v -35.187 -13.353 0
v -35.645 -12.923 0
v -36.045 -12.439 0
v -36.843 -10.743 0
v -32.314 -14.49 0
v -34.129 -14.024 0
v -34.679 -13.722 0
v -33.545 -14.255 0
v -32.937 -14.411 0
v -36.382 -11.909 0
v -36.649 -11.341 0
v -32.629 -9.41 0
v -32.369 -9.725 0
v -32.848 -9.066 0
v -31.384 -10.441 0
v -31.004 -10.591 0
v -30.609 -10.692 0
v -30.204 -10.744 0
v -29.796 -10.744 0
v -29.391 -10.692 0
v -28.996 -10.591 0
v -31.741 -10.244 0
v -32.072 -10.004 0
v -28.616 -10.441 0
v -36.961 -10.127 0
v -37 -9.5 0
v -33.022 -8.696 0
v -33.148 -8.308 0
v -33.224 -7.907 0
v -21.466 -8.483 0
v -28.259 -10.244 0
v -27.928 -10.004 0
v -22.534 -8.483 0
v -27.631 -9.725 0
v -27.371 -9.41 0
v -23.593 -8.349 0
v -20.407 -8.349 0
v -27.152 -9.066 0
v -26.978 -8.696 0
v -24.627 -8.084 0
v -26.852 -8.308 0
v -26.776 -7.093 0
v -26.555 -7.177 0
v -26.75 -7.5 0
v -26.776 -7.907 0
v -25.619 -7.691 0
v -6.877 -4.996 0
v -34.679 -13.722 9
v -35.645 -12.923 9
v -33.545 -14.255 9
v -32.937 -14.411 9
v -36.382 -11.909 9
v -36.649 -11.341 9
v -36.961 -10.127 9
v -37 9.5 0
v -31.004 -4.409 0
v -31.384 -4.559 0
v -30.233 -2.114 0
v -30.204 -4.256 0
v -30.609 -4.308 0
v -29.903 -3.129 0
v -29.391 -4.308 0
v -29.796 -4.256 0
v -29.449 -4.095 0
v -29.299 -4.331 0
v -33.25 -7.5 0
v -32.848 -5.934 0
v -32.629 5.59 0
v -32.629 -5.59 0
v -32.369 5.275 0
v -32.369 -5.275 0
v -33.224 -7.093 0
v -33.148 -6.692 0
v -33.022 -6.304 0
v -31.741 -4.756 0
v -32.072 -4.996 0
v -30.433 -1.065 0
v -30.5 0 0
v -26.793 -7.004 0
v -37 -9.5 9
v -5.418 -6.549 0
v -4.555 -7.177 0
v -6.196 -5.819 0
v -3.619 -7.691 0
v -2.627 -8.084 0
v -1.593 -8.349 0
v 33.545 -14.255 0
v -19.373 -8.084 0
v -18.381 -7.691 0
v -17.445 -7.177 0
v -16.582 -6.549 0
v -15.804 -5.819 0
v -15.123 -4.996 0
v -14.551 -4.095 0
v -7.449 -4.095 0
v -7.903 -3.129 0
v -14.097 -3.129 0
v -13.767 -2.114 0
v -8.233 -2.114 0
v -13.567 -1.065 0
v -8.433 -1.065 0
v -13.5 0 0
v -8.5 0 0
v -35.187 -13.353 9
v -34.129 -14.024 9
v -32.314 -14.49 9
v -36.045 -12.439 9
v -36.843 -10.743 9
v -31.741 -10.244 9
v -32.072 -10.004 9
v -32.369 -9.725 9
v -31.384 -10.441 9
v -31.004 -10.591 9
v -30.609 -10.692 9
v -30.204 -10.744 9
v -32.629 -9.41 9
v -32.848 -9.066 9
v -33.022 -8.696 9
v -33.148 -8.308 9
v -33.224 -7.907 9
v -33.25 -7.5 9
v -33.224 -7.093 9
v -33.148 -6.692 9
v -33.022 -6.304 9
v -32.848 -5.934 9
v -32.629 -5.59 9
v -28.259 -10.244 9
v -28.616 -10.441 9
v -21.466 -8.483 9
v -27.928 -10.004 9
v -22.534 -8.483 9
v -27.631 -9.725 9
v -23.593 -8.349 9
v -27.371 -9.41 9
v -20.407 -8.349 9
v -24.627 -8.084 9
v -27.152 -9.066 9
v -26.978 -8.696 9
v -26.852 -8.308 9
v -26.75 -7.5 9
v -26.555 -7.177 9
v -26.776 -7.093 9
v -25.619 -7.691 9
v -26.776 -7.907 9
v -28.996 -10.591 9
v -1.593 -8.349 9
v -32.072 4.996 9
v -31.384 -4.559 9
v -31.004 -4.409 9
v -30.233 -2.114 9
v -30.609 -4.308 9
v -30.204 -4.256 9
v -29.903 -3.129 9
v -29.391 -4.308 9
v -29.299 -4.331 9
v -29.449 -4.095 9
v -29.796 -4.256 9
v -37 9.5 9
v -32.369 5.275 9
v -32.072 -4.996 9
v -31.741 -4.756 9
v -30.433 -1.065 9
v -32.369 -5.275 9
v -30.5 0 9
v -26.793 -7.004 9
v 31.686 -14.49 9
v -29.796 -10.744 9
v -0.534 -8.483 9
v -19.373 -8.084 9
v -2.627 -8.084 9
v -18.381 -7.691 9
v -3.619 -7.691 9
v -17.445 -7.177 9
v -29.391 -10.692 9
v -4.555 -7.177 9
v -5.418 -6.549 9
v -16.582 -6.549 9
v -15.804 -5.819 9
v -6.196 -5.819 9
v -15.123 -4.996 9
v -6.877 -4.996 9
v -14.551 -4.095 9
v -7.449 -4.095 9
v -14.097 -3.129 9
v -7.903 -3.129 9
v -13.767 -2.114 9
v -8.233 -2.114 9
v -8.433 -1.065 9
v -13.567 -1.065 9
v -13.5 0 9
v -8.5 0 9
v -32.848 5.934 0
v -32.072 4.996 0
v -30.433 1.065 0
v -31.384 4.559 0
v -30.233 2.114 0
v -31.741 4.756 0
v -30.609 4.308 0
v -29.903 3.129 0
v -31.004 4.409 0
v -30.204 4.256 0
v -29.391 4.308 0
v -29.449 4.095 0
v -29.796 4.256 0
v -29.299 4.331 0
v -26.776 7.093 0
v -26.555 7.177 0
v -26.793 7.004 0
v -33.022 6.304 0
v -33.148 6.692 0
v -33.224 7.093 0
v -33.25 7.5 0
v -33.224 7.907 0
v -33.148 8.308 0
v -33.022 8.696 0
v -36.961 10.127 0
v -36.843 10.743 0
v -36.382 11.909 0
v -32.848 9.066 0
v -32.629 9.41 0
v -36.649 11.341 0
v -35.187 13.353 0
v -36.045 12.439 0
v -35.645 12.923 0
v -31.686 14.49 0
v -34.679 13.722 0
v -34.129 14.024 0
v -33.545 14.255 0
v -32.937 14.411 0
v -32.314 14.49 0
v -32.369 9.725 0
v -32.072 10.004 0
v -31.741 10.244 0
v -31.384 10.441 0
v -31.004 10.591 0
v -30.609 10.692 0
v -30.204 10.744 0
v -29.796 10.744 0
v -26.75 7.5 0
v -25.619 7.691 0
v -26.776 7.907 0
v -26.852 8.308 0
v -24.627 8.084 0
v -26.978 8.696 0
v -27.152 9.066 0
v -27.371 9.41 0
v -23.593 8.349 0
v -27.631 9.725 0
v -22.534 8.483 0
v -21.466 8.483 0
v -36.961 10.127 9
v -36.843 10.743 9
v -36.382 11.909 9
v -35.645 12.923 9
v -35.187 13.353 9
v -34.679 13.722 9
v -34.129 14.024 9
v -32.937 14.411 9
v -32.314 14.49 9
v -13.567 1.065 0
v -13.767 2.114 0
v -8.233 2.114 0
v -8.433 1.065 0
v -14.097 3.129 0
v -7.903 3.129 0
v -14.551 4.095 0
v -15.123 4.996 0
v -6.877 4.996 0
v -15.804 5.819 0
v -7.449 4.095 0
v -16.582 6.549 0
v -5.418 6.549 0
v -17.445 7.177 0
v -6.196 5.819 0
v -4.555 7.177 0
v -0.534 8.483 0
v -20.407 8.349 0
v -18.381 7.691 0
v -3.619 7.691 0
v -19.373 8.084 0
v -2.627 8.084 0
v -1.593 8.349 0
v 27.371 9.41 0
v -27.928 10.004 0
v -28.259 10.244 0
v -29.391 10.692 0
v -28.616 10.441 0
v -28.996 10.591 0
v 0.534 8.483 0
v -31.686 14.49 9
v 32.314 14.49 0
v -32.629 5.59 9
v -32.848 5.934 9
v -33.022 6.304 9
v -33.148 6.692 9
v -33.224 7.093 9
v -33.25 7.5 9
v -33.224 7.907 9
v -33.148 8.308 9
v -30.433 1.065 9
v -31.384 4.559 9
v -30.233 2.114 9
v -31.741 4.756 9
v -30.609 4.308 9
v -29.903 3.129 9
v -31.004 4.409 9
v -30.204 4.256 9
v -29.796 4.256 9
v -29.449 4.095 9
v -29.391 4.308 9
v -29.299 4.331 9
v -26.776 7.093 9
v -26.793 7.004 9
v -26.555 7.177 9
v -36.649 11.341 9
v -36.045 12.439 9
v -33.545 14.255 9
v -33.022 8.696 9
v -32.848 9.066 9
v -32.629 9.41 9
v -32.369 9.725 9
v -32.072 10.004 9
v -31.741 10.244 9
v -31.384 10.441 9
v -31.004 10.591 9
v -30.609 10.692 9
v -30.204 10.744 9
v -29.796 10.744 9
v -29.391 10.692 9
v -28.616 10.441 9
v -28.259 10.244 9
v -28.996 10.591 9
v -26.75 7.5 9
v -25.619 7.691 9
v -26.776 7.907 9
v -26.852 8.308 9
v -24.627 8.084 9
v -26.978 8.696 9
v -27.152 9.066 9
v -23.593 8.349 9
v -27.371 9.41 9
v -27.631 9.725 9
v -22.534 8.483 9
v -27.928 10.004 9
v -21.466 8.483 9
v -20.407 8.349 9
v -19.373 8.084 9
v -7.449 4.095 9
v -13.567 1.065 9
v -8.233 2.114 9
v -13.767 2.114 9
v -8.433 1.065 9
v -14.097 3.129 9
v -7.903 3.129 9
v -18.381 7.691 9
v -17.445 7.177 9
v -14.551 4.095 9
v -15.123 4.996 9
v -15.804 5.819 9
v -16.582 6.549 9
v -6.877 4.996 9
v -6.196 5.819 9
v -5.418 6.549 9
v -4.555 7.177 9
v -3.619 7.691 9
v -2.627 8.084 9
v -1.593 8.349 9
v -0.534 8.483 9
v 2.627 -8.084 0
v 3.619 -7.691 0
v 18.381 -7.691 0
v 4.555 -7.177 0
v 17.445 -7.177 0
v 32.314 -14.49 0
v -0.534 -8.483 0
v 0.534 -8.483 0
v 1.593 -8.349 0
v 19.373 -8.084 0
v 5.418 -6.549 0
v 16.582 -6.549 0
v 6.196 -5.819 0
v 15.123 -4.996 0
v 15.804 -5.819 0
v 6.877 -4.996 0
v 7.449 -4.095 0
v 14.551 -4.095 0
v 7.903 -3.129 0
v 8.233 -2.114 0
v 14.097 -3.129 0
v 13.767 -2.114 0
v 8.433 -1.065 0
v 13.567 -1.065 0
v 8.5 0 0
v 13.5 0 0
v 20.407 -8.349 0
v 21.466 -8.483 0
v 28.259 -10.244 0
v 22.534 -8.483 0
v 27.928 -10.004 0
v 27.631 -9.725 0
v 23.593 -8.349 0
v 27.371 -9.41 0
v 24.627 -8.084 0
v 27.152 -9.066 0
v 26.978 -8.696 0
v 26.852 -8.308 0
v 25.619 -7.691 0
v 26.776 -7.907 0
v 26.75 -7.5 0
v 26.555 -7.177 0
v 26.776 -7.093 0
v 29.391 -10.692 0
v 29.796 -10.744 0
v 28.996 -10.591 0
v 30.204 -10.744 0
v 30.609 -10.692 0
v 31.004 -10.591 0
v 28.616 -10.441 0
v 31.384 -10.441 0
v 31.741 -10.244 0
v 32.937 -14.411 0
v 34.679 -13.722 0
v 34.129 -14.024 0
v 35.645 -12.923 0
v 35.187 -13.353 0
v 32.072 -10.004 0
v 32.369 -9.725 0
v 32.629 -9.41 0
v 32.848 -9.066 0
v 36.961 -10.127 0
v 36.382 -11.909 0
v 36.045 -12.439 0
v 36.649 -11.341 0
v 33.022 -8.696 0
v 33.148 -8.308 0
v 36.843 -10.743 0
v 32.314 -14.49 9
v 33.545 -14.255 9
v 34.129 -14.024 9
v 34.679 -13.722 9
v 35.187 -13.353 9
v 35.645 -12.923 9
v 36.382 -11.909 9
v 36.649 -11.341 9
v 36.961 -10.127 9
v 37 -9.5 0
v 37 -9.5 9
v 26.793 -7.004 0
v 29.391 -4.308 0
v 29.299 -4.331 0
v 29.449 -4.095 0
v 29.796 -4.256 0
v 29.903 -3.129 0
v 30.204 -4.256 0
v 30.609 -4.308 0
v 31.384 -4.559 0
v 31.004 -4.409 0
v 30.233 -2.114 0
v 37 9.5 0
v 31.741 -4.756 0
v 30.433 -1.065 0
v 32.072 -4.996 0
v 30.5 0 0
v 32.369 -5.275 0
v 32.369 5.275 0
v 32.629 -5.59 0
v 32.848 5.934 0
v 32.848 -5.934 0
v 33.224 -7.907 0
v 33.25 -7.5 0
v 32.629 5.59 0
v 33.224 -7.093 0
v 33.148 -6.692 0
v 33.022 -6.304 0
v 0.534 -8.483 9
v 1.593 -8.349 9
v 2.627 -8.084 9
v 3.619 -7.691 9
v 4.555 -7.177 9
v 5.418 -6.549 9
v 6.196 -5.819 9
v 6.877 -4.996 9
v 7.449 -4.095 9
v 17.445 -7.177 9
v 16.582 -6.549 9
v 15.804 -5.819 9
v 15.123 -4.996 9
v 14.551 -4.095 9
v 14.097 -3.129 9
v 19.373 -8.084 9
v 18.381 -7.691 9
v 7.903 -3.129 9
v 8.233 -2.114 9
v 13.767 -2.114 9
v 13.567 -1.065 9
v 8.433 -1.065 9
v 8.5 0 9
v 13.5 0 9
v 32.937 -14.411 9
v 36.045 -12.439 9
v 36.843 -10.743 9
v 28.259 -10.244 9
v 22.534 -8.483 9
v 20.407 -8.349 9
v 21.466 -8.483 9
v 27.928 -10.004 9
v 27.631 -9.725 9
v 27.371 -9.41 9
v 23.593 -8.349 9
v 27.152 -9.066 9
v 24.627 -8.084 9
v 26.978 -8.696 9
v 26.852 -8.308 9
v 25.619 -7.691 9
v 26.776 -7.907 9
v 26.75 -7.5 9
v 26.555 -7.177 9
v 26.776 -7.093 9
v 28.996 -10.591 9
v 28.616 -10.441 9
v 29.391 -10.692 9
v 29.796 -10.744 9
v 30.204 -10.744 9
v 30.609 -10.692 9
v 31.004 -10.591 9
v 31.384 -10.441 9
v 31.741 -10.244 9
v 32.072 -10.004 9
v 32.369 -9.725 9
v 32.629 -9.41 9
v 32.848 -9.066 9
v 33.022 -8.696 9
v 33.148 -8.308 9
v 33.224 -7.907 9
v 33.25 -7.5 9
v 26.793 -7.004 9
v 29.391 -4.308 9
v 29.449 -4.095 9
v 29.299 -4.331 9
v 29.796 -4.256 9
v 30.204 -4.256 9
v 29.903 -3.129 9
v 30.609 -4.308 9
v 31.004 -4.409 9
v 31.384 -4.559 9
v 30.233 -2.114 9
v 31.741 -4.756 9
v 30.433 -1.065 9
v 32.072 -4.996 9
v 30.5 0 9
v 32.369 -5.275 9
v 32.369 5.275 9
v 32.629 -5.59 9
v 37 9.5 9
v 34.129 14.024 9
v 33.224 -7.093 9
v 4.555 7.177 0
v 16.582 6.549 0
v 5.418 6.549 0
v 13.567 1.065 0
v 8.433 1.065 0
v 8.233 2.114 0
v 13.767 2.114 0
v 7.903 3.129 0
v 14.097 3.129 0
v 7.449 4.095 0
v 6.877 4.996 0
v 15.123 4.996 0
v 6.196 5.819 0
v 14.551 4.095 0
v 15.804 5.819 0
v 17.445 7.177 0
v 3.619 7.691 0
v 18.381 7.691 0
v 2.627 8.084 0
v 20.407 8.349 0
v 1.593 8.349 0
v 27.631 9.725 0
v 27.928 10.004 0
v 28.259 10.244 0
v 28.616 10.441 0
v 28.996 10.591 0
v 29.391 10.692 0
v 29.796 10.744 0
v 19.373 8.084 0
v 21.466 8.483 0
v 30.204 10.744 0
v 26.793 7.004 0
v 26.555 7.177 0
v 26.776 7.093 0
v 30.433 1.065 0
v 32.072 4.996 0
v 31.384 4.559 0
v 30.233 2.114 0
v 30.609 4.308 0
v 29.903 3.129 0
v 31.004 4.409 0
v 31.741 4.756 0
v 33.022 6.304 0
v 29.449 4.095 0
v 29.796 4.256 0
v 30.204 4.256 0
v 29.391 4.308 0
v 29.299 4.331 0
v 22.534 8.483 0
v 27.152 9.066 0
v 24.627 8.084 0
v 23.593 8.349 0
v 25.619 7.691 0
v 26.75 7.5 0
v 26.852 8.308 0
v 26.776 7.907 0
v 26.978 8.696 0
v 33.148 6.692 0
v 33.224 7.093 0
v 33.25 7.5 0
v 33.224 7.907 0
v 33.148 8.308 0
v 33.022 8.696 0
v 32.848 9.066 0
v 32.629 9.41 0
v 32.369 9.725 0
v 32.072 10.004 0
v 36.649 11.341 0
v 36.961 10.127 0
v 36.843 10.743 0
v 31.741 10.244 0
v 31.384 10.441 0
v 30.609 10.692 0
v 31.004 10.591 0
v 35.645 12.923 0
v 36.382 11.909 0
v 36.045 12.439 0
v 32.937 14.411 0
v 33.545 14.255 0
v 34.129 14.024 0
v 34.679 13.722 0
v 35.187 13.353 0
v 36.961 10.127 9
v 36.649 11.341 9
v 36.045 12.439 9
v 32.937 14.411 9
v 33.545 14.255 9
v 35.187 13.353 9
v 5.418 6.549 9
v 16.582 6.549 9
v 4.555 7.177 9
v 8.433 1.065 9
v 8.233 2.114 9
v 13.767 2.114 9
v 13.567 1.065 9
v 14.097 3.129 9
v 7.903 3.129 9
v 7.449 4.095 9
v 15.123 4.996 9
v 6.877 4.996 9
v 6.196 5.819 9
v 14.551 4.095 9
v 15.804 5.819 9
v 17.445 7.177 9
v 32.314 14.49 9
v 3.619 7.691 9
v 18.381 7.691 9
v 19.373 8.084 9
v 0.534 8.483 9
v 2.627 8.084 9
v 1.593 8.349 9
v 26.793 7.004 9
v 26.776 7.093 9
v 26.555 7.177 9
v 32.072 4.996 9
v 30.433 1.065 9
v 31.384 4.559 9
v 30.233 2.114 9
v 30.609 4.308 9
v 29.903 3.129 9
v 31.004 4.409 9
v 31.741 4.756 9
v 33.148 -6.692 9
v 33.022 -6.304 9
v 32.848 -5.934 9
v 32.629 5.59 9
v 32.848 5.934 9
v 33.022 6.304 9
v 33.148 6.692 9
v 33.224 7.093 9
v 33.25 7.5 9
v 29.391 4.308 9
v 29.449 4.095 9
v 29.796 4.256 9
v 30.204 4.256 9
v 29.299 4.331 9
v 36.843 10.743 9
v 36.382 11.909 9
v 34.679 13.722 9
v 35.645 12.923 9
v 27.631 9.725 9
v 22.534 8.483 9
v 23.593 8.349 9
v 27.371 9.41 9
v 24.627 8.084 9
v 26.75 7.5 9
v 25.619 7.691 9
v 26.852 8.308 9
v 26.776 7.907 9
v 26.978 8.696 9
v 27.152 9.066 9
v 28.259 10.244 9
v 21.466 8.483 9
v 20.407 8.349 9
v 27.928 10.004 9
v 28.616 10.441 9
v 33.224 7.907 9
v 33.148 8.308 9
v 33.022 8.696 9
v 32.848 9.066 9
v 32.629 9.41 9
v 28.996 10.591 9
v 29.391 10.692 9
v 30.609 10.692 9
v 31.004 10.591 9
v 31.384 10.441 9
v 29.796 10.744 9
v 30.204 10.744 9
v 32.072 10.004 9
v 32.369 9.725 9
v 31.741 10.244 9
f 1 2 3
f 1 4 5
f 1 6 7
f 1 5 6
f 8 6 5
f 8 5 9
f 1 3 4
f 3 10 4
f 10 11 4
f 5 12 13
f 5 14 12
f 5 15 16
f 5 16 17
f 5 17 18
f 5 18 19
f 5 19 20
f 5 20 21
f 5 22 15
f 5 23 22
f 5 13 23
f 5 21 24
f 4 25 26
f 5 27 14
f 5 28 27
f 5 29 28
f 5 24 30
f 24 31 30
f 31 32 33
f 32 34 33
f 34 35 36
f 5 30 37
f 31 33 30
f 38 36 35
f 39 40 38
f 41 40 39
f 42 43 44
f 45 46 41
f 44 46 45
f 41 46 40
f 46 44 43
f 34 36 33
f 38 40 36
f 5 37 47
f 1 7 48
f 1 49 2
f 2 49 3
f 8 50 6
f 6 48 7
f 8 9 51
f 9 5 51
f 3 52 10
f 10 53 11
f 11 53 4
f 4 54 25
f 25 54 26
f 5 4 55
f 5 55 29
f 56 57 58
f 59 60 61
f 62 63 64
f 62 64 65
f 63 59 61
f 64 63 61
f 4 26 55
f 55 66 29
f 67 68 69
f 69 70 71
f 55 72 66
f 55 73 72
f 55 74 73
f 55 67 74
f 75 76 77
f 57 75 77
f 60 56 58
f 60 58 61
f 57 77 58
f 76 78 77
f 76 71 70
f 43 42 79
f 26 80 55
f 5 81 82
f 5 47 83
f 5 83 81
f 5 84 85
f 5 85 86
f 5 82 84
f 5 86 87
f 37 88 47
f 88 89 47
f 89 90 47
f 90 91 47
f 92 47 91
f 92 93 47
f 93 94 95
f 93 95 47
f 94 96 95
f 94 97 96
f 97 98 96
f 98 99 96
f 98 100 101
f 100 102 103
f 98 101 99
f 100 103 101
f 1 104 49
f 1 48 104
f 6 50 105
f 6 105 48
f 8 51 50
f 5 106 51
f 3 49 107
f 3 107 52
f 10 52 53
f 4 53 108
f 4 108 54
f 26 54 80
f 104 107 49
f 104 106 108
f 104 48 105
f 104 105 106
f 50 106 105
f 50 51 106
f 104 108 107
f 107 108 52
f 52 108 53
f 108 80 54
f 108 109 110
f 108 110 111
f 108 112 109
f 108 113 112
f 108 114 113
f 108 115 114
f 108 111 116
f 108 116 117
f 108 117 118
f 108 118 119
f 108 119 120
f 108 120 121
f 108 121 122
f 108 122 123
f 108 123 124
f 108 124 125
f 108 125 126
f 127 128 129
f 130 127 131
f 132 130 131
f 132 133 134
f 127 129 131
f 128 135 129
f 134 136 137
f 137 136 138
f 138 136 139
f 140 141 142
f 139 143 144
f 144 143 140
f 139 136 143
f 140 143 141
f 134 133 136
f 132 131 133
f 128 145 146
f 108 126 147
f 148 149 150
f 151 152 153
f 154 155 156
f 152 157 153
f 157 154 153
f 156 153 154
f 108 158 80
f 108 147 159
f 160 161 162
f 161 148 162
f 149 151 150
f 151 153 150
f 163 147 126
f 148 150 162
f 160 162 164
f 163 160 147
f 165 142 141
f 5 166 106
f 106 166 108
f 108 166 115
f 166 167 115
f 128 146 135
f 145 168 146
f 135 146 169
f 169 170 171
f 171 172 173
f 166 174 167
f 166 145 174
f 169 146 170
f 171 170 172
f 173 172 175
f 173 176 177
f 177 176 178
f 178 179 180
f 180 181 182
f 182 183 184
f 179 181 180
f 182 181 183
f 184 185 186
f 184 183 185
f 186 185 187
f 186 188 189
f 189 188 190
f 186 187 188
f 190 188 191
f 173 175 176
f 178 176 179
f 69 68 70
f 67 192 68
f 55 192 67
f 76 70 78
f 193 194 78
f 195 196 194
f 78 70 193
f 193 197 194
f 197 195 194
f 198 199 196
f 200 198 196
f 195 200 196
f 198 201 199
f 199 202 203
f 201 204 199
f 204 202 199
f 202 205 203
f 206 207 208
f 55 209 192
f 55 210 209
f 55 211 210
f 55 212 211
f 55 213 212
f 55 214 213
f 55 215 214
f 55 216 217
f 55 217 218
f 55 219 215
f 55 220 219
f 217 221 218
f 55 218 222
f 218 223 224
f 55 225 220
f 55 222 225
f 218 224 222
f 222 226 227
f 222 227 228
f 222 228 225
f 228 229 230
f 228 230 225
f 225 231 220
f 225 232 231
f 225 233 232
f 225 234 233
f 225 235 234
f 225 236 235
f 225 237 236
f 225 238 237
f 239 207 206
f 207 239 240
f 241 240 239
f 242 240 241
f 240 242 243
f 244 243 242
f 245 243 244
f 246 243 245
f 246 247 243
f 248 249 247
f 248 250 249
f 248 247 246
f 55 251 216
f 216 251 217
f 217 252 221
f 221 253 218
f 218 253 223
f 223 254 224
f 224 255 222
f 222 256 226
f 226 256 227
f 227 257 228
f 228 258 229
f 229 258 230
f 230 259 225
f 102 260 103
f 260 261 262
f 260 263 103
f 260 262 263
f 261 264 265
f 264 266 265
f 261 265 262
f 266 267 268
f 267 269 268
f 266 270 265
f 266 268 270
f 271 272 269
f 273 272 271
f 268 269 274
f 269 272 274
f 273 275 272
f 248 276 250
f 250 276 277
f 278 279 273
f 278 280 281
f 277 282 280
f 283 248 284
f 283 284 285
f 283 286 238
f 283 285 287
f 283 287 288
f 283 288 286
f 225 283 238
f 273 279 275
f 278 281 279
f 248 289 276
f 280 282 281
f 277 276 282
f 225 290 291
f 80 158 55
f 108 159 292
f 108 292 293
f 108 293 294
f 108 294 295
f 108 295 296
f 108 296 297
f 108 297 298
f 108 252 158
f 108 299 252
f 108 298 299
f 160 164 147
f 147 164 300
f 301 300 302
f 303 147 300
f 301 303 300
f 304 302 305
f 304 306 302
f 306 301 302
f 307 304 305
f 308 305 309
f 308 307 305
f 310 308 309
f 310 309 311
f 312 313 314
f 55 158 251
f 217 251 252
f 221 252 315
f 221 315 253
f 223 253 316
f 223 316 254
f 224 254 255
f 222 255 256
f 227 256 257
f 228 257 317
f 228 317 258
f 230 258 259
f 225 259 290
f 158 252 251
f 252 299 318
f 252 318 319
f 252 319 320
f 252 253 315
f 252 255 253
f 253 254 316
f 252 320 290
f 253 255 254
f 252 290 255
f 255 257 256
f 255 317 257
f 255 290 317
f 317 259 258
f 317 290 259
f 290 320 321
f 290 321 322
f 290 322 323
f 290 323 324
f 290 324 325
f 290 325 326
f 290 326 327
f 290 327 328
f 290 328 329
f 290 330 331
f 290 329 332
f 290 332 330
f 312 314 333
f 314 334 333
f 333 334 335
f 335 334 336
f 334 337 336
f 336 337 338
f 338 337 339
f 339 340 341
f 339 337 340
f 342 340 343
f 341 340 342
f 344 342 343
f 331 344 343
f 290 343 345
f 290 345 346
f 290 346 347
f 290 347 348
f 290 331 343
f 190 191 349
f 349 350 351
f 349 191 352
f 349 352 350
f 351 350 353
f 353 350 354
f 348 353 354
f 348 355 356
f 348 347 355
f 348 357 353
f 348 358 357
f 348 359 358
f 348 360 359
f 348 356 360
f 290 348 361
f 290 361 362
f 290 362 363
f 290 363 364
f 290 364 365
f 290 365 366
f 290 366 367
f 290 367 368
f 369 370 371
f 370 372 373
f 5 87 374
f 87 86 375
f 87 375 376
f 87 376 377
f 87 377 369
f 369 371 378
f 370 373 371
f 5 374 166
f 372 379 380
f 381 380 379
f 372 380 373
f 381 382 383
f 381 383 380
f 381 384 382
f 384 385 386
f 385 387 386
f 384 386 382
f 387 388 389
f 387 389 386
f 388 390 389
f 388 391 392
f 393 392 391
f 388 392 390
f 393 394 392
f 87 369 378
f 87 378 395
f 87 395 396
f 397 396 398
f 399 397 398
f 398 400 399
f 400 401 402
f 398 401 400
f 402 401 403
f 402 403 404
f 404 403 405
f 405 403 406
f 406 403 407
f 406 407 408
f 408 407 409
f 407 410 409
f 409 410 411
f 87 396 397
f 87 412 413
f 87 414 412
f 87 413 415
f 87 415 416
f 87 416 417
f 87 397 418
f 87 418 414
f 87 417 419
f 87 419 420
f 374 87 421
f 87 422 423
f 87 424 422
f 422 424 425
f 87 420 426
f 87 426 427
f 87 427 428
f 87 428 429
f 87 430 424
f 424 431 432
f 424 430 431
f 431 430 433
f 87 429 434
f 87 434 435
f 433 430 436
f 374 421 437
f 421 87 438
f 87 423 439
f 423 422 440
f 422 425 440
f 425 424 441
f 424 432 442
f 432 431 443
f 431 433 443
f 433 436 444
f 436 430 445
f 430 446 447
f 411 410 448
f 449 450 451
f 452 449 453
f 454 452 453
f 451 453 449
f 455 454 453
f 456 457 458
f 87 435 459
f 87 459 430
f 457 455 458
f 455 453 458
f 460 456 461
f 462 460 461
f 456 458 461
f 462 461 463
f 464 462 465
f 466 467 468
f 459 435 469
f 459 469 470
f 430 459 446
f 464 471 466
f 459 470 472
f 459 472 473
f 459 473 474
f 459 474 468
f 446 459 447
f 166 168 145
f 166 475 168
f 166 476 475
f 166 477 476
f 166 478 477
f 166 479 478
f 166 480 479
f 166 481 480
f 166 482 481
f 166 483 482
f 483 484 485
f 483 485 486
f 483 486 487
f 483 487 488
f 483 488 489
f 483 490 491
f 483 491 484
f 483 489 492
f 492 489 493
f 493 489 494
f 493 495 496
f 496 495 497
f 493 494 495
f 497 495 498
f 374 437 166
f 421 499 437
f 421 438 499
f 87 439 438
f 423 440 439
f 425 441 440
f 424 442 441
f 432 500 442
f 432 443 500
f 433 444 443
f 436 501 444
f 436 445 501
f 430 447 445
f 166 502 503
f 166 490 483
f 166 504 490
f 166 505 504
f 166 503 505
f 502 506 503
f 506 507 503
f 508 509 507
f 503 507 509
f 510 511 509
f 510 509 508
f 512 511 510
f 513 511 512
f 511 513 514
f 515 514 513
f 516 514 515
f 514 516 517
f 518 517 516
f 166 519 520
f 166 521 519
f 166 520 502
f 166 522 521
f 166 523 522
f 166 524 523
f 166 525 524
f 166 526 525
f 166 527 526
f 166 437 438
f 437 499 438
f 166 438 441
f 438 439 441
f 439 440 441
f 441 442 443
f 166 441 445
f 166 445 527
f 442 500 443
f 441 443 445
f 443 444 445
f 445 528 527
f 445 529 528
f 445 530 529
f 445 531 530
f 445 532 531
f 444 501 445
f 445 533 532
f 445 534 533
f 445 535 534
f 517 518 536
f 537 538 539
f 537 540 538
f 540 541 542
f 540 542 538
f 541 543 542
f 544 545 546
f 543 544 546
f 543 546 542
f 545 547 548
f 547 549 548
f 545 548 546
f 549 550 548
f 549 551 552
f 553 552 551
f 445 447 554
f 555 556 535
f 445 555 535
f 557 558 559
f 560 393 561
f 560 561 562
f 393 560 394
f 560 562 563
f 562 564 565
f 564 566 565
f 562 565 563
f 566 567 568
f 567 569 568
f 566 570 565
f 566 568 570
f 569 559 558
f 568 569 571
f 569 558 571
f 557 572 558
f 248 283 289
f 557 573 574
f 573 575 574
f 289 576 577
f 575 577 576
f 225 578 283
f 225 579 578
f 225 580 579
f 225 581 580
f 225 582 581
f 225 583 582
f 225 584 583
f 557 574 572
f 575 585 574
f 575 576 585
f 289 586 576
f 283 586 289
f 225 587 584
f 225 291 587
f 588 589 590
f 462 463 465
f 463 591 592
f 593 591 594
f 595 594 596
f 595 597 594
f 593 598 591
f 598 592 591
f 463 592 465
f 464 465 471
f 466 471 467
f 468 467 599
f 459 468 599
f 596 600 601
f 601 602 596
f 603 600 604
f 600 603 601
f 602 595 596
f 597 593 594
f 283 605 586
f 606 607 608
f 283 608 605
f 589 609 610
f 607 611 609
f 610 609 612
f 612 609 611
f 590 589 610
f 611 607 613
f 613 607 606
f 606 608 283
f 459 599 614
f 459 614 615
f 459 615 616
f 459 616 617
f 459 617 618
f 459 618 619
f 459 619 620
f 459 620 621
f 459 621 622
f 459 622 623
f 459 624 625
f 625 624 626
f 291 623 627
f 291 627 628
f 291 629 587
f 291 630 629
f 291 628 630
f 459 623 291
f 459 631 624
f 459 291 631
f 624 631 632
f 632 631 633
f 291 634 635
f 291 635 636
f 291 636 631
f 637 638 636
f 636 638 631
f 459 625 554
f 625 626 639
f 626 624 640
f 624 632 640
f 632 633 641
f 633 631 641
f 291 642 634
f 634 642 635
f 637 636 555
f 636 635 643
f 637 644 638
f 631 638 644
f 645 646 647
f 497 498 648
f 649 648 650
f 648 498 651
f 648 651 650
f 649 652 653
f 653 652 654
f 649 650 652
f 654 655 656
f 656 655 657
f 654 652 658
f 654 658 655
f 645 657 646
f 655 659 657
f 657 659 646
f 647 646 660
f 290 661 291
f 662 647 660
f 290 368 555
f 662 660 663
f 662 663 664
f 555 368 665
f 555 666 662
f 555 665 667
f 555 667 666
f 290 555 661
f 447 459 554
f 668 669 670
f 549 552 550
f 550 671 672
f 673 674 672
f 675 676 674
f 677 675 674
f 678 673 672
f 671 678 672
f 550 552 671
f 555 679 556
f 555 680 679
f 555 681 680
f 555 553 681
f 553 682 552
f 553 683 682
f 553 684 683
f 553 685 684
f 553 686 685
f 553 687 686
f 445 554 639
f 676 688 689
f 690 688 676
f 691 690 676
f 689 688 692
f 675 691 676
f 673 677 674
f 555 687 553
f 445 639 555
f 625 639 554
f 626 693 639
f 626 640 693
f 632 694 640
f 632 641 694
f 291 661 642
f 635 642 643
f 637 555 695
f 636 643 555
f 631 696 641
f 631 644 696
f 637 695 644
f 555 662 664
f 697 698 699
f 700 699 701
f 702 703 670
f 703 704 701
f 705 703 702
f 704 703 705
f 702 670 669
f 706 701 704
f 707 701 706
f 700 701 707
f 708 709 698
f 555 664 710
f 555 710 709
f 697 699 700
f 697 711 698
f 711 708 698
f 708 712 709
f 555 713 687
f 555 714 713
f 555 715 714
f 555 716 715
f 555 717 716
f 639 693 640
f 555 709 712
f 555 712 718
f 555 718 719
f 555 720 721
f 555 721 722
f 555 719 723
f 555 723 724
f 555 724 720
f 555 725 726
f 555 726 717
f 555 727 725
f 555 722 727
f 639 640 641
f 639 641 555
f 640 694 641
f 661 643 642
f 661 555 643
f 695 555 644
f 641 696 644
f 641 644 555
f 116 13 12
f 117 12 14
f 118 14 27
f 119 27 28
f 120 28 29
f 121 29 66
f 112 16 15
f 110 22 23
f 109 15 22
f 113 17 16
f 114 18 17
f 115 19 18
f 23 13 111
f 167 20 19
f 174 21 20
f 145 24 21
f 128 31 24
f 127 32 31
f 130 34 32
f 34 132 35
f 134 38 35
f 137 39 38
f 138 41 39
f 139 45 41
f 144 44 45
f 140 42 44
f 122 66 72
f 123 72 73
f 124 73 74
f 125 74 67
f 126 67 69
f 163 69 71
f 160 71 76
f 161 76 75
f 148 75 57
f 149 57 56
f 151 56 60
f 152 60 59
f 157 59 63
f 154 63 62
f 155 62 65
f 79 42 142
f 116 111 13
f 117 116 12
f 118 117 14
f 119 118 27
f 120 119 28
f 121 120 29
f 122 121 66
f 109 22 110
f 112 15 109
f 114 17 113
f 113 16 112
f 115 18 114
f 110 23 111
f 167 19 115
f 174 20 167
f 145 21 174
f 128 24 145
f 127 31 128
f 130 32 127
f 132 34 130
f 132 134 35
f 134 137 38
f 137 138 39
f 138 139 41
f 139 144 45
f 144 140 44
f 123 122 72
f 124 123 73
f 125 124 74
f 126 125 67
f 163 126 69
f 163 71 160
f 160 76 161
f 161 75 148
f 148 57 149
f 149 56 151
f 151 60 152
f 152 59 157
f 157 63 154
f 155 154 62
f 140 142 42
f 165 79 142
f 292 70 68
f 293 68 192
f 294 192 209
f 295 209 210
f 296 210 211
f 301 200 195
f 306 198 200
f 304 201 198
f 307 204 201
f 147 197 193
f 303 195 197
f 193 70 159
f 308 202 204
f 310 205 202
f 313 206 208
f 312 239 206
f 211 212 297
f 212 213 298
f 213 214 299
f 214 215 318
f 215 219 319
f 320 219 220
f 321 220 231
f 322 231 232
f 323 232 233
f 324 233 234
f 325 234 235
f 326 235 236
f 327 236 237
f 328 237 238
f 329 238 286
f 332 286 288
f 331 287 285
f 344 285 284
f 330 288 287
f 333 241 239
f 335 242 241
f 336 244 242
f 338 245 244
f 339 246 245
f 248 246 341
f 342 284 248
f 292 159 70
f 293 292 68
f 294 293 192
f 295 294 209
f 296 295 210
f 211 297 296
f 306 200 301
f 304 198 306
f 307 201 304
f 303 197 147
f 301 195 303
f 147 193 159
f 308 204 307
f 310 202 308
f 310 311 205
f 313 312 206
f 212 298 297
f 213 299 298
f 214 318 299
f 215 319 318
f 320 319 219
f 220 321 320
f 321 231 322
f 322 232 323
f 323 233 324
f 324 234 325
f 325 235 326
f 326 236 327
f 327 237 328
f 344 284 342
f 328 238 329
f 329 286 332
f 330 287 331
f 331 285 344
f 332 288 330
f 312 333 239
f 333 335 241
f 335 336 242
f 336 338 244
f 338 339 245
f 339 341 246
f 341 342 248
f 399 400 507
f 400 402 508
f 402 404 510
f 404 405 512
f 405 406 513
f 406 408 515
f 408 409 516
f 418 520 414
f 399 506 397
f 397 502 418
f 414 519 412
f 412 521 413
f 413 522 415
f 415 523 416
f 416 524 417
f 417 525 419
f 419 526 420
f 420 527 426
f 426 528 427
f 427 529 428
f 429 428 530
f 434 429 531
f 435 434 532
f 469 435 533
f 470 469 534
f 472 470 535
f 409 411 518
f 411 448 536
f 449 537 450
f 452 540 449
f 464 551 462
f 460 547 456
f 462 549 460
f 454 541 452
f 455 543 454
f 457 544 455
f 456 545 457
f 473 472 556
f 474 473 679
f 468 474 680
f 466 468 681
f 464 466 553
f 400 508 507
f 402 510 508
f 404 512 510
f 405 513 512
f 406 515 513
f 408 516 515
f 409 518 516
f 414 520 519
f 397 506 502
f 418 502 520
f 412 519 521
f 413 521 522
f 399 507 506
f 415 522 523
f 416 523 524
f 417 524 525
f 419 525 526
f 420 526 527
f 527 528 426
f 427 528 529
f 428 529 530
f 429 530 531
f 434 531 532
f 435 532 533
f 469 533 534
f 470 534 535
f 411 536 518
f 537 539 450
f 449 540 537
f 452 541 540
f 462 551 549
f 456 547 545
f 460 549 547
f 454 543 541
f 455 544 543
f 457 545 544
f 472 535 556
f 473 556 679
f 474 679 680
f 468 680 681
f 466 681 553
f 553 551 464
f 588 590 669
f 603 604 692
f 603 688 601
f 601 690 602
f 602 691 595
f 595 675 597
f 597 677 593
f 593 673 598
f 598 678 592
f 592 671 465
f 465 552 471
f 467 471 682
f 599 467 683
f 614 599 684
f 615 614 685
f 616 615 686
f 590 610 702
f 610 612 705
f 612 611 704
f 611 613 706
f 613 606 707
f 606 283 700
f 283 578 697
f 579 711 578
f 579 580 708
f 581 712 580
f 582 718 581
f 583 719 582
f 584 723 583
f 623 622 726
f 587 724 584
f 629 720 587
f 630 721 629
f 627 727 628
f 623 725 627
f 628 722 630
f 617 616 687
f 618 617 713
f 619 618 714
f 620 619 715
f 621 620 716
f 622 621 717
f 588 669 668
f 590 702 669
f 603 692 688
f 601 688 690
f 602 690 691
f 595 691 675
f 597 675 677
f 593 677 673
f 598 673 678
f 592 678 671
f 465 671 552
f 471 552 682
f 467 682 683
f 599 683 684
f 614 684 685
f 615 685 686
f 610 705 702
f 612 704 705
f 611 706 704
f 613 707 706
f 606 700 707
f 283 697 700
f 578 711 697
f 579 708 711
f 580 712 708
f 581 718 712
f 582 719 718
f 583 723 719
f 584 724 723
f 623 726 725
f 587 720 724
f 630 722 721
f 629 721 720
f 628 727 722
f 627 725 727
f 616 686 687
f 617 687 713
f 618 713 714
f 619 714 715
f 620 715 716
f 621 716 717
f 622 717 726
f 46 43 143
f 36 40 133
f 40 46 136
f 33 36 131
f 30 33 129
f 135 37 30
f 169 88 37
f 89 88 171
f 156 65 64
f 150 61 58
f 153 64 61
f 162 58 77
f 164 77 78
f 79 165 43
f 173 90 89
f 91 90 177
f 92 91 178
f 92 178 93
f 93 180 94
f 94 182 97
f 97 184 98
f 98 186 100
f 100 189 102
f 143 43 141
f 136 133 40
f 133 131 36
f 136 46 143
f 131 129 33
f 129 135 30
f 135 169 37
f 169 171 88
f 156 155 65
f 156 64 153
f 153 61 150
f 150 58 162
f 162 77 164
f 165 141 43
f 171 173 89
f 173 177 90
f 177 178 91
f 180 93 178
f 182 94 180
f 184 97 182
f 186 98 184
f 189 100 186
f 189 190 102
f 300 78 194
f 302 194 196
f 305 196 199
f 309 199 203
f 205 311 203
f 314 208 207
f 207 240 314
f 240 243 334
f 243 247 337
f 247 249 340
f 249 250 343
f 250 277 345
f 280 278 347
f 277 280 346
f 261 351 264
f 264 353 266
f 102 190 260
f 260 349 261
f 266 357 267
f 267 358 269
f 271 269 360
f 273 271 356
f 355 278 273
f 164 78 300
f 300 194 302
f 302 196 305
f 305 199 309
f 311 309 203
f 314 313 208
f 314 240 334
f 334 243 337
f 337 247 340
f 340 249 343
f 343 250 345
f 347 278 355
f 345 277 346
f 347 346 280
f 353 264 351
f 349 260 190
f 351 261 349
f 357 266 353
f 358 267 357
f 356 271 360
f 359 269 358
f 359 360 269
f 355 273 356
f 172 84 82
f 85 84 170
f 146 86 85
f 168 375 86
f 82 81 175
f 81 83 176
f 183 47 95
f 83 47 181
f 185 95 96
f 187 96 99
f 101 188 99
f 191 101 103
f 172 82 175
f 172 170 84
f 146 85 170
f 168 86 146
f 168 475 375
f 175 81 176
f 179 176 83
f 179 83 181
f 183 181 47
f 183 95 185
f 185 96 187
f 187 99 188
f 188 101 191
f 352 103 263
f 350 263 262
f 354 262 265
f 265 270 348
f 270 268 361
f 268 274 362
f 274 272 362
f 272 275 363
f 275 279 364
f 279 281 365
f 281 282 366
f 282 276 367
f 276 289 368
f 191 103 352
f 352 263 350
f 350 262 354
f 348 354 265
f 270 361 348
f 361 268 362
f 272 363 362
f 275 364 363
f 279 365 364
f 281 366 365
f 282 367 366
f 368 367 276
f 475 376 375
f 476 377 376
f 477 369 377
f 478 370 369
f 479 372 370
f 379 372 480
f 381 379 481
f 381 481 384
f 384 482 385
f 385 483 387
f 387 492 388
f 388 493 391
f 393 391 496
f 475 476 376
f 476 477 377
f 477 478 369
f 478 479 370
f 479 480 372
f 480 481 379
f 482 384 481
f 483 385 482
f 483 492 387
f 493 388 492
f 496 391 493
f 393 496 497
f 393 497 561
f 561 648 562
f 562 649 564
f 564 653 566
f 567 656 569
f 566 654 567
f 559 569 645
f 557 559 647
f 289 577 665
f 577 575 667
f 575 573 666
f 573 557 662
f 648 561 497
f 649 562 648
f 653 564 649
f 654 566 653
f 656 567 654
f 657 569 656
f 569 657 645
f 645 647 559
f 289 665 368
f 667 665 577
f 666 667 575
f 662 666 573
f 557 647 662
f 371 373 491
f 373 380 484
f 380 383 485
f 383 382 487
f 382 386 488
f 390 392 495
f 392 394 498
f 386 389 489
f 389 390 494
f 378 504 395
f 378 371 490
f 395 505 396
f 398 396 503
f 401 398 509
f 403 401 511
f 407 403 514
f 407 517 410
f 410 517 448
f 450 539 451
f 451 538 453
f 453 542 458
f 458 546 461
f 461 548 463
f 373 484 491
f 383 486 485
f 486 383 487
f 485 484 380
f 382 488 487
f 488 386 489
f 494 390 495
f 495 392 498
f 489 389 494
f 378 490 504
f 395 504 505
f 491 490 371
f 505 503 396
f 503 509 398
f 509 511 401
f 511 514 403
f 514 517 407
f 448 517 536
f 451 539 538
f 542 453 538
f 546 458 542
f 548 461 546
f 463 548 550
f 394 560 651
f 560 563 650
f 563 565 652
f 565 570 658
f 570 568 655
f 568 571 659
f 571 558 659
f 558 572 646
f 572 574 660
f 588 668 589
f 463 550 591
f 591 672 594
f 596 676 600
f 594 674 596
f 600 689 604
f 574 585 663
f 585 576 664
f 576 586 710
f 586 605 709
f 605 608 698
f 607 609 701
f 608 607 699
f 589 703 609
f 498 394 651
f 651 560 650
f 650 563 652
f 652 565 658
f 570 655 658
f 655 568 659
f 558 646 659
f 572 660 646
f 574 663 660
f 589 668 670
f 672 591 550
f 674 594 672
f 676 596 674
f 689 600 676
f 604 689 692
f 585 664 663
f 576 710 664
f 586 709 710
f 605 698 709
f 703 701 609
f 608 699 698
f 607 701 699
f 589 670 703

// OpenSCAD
$fn = 50;

difference() {
	union() {
		hull() {
			translate(v = [-32.0, 9.5, 0]) {
				cylinder(h = 9, r = 5);
			}
			translate(v = [32.0, 9.5, 0]) {
				cylinder(h = 9, r = 5);
			}
			translate(v = [-32.0, -9.5, 0]) {
				cylinder(h = 9, r = 5);
			}
			translate(v = [32.0, -9.5, 0]) {
				cylinder(h = 9, r = 5);
			}
		}
	}
	union() {
		translate(v = [-30.0, -7.5, -100.0]) {
			cylinder(h = 200, r = 3.25);
		}
		translate(v = [-30.0, 7.5, -100.0]) {
			cylinder(h = 200, r = 3.25);
		}
		translate(v = [30.0, -7.5, -100.0]) {
			cylinder(h = 200, r = 3.25);
		}
		translate(v = [30.0, 7.5, -100.0]) {
			cylinder(h = 200, r = 3.25);
		}
		translate(v = [-30.0, -7.5, -100.0]) {
			cylinder(h = 200, r = 1.8);
		}
		translate(v = [-30.0, 7.5, -100.0]) {
			cylinder(h = 200, r = 1.8);
		}
		translate(v = [30.0, -7.5, -100.0]) {
			cylinder(h = 200, r = 1.8);
		}
		translate(v = [30.0, 7.5, -100.0]) {
			cylinder(h = 200, r = 1.8);
		}
		translate(v = [-22.0, 0, 0.0]) {
			cylinder(h = 9, r = 8.5);
		}
		cylinder(h = 9, r = 8.5);
		translate(v = [22.0, 0, 0.0]) {
			cylinder(h = 9, r = 8.5);
		}
	}
}
